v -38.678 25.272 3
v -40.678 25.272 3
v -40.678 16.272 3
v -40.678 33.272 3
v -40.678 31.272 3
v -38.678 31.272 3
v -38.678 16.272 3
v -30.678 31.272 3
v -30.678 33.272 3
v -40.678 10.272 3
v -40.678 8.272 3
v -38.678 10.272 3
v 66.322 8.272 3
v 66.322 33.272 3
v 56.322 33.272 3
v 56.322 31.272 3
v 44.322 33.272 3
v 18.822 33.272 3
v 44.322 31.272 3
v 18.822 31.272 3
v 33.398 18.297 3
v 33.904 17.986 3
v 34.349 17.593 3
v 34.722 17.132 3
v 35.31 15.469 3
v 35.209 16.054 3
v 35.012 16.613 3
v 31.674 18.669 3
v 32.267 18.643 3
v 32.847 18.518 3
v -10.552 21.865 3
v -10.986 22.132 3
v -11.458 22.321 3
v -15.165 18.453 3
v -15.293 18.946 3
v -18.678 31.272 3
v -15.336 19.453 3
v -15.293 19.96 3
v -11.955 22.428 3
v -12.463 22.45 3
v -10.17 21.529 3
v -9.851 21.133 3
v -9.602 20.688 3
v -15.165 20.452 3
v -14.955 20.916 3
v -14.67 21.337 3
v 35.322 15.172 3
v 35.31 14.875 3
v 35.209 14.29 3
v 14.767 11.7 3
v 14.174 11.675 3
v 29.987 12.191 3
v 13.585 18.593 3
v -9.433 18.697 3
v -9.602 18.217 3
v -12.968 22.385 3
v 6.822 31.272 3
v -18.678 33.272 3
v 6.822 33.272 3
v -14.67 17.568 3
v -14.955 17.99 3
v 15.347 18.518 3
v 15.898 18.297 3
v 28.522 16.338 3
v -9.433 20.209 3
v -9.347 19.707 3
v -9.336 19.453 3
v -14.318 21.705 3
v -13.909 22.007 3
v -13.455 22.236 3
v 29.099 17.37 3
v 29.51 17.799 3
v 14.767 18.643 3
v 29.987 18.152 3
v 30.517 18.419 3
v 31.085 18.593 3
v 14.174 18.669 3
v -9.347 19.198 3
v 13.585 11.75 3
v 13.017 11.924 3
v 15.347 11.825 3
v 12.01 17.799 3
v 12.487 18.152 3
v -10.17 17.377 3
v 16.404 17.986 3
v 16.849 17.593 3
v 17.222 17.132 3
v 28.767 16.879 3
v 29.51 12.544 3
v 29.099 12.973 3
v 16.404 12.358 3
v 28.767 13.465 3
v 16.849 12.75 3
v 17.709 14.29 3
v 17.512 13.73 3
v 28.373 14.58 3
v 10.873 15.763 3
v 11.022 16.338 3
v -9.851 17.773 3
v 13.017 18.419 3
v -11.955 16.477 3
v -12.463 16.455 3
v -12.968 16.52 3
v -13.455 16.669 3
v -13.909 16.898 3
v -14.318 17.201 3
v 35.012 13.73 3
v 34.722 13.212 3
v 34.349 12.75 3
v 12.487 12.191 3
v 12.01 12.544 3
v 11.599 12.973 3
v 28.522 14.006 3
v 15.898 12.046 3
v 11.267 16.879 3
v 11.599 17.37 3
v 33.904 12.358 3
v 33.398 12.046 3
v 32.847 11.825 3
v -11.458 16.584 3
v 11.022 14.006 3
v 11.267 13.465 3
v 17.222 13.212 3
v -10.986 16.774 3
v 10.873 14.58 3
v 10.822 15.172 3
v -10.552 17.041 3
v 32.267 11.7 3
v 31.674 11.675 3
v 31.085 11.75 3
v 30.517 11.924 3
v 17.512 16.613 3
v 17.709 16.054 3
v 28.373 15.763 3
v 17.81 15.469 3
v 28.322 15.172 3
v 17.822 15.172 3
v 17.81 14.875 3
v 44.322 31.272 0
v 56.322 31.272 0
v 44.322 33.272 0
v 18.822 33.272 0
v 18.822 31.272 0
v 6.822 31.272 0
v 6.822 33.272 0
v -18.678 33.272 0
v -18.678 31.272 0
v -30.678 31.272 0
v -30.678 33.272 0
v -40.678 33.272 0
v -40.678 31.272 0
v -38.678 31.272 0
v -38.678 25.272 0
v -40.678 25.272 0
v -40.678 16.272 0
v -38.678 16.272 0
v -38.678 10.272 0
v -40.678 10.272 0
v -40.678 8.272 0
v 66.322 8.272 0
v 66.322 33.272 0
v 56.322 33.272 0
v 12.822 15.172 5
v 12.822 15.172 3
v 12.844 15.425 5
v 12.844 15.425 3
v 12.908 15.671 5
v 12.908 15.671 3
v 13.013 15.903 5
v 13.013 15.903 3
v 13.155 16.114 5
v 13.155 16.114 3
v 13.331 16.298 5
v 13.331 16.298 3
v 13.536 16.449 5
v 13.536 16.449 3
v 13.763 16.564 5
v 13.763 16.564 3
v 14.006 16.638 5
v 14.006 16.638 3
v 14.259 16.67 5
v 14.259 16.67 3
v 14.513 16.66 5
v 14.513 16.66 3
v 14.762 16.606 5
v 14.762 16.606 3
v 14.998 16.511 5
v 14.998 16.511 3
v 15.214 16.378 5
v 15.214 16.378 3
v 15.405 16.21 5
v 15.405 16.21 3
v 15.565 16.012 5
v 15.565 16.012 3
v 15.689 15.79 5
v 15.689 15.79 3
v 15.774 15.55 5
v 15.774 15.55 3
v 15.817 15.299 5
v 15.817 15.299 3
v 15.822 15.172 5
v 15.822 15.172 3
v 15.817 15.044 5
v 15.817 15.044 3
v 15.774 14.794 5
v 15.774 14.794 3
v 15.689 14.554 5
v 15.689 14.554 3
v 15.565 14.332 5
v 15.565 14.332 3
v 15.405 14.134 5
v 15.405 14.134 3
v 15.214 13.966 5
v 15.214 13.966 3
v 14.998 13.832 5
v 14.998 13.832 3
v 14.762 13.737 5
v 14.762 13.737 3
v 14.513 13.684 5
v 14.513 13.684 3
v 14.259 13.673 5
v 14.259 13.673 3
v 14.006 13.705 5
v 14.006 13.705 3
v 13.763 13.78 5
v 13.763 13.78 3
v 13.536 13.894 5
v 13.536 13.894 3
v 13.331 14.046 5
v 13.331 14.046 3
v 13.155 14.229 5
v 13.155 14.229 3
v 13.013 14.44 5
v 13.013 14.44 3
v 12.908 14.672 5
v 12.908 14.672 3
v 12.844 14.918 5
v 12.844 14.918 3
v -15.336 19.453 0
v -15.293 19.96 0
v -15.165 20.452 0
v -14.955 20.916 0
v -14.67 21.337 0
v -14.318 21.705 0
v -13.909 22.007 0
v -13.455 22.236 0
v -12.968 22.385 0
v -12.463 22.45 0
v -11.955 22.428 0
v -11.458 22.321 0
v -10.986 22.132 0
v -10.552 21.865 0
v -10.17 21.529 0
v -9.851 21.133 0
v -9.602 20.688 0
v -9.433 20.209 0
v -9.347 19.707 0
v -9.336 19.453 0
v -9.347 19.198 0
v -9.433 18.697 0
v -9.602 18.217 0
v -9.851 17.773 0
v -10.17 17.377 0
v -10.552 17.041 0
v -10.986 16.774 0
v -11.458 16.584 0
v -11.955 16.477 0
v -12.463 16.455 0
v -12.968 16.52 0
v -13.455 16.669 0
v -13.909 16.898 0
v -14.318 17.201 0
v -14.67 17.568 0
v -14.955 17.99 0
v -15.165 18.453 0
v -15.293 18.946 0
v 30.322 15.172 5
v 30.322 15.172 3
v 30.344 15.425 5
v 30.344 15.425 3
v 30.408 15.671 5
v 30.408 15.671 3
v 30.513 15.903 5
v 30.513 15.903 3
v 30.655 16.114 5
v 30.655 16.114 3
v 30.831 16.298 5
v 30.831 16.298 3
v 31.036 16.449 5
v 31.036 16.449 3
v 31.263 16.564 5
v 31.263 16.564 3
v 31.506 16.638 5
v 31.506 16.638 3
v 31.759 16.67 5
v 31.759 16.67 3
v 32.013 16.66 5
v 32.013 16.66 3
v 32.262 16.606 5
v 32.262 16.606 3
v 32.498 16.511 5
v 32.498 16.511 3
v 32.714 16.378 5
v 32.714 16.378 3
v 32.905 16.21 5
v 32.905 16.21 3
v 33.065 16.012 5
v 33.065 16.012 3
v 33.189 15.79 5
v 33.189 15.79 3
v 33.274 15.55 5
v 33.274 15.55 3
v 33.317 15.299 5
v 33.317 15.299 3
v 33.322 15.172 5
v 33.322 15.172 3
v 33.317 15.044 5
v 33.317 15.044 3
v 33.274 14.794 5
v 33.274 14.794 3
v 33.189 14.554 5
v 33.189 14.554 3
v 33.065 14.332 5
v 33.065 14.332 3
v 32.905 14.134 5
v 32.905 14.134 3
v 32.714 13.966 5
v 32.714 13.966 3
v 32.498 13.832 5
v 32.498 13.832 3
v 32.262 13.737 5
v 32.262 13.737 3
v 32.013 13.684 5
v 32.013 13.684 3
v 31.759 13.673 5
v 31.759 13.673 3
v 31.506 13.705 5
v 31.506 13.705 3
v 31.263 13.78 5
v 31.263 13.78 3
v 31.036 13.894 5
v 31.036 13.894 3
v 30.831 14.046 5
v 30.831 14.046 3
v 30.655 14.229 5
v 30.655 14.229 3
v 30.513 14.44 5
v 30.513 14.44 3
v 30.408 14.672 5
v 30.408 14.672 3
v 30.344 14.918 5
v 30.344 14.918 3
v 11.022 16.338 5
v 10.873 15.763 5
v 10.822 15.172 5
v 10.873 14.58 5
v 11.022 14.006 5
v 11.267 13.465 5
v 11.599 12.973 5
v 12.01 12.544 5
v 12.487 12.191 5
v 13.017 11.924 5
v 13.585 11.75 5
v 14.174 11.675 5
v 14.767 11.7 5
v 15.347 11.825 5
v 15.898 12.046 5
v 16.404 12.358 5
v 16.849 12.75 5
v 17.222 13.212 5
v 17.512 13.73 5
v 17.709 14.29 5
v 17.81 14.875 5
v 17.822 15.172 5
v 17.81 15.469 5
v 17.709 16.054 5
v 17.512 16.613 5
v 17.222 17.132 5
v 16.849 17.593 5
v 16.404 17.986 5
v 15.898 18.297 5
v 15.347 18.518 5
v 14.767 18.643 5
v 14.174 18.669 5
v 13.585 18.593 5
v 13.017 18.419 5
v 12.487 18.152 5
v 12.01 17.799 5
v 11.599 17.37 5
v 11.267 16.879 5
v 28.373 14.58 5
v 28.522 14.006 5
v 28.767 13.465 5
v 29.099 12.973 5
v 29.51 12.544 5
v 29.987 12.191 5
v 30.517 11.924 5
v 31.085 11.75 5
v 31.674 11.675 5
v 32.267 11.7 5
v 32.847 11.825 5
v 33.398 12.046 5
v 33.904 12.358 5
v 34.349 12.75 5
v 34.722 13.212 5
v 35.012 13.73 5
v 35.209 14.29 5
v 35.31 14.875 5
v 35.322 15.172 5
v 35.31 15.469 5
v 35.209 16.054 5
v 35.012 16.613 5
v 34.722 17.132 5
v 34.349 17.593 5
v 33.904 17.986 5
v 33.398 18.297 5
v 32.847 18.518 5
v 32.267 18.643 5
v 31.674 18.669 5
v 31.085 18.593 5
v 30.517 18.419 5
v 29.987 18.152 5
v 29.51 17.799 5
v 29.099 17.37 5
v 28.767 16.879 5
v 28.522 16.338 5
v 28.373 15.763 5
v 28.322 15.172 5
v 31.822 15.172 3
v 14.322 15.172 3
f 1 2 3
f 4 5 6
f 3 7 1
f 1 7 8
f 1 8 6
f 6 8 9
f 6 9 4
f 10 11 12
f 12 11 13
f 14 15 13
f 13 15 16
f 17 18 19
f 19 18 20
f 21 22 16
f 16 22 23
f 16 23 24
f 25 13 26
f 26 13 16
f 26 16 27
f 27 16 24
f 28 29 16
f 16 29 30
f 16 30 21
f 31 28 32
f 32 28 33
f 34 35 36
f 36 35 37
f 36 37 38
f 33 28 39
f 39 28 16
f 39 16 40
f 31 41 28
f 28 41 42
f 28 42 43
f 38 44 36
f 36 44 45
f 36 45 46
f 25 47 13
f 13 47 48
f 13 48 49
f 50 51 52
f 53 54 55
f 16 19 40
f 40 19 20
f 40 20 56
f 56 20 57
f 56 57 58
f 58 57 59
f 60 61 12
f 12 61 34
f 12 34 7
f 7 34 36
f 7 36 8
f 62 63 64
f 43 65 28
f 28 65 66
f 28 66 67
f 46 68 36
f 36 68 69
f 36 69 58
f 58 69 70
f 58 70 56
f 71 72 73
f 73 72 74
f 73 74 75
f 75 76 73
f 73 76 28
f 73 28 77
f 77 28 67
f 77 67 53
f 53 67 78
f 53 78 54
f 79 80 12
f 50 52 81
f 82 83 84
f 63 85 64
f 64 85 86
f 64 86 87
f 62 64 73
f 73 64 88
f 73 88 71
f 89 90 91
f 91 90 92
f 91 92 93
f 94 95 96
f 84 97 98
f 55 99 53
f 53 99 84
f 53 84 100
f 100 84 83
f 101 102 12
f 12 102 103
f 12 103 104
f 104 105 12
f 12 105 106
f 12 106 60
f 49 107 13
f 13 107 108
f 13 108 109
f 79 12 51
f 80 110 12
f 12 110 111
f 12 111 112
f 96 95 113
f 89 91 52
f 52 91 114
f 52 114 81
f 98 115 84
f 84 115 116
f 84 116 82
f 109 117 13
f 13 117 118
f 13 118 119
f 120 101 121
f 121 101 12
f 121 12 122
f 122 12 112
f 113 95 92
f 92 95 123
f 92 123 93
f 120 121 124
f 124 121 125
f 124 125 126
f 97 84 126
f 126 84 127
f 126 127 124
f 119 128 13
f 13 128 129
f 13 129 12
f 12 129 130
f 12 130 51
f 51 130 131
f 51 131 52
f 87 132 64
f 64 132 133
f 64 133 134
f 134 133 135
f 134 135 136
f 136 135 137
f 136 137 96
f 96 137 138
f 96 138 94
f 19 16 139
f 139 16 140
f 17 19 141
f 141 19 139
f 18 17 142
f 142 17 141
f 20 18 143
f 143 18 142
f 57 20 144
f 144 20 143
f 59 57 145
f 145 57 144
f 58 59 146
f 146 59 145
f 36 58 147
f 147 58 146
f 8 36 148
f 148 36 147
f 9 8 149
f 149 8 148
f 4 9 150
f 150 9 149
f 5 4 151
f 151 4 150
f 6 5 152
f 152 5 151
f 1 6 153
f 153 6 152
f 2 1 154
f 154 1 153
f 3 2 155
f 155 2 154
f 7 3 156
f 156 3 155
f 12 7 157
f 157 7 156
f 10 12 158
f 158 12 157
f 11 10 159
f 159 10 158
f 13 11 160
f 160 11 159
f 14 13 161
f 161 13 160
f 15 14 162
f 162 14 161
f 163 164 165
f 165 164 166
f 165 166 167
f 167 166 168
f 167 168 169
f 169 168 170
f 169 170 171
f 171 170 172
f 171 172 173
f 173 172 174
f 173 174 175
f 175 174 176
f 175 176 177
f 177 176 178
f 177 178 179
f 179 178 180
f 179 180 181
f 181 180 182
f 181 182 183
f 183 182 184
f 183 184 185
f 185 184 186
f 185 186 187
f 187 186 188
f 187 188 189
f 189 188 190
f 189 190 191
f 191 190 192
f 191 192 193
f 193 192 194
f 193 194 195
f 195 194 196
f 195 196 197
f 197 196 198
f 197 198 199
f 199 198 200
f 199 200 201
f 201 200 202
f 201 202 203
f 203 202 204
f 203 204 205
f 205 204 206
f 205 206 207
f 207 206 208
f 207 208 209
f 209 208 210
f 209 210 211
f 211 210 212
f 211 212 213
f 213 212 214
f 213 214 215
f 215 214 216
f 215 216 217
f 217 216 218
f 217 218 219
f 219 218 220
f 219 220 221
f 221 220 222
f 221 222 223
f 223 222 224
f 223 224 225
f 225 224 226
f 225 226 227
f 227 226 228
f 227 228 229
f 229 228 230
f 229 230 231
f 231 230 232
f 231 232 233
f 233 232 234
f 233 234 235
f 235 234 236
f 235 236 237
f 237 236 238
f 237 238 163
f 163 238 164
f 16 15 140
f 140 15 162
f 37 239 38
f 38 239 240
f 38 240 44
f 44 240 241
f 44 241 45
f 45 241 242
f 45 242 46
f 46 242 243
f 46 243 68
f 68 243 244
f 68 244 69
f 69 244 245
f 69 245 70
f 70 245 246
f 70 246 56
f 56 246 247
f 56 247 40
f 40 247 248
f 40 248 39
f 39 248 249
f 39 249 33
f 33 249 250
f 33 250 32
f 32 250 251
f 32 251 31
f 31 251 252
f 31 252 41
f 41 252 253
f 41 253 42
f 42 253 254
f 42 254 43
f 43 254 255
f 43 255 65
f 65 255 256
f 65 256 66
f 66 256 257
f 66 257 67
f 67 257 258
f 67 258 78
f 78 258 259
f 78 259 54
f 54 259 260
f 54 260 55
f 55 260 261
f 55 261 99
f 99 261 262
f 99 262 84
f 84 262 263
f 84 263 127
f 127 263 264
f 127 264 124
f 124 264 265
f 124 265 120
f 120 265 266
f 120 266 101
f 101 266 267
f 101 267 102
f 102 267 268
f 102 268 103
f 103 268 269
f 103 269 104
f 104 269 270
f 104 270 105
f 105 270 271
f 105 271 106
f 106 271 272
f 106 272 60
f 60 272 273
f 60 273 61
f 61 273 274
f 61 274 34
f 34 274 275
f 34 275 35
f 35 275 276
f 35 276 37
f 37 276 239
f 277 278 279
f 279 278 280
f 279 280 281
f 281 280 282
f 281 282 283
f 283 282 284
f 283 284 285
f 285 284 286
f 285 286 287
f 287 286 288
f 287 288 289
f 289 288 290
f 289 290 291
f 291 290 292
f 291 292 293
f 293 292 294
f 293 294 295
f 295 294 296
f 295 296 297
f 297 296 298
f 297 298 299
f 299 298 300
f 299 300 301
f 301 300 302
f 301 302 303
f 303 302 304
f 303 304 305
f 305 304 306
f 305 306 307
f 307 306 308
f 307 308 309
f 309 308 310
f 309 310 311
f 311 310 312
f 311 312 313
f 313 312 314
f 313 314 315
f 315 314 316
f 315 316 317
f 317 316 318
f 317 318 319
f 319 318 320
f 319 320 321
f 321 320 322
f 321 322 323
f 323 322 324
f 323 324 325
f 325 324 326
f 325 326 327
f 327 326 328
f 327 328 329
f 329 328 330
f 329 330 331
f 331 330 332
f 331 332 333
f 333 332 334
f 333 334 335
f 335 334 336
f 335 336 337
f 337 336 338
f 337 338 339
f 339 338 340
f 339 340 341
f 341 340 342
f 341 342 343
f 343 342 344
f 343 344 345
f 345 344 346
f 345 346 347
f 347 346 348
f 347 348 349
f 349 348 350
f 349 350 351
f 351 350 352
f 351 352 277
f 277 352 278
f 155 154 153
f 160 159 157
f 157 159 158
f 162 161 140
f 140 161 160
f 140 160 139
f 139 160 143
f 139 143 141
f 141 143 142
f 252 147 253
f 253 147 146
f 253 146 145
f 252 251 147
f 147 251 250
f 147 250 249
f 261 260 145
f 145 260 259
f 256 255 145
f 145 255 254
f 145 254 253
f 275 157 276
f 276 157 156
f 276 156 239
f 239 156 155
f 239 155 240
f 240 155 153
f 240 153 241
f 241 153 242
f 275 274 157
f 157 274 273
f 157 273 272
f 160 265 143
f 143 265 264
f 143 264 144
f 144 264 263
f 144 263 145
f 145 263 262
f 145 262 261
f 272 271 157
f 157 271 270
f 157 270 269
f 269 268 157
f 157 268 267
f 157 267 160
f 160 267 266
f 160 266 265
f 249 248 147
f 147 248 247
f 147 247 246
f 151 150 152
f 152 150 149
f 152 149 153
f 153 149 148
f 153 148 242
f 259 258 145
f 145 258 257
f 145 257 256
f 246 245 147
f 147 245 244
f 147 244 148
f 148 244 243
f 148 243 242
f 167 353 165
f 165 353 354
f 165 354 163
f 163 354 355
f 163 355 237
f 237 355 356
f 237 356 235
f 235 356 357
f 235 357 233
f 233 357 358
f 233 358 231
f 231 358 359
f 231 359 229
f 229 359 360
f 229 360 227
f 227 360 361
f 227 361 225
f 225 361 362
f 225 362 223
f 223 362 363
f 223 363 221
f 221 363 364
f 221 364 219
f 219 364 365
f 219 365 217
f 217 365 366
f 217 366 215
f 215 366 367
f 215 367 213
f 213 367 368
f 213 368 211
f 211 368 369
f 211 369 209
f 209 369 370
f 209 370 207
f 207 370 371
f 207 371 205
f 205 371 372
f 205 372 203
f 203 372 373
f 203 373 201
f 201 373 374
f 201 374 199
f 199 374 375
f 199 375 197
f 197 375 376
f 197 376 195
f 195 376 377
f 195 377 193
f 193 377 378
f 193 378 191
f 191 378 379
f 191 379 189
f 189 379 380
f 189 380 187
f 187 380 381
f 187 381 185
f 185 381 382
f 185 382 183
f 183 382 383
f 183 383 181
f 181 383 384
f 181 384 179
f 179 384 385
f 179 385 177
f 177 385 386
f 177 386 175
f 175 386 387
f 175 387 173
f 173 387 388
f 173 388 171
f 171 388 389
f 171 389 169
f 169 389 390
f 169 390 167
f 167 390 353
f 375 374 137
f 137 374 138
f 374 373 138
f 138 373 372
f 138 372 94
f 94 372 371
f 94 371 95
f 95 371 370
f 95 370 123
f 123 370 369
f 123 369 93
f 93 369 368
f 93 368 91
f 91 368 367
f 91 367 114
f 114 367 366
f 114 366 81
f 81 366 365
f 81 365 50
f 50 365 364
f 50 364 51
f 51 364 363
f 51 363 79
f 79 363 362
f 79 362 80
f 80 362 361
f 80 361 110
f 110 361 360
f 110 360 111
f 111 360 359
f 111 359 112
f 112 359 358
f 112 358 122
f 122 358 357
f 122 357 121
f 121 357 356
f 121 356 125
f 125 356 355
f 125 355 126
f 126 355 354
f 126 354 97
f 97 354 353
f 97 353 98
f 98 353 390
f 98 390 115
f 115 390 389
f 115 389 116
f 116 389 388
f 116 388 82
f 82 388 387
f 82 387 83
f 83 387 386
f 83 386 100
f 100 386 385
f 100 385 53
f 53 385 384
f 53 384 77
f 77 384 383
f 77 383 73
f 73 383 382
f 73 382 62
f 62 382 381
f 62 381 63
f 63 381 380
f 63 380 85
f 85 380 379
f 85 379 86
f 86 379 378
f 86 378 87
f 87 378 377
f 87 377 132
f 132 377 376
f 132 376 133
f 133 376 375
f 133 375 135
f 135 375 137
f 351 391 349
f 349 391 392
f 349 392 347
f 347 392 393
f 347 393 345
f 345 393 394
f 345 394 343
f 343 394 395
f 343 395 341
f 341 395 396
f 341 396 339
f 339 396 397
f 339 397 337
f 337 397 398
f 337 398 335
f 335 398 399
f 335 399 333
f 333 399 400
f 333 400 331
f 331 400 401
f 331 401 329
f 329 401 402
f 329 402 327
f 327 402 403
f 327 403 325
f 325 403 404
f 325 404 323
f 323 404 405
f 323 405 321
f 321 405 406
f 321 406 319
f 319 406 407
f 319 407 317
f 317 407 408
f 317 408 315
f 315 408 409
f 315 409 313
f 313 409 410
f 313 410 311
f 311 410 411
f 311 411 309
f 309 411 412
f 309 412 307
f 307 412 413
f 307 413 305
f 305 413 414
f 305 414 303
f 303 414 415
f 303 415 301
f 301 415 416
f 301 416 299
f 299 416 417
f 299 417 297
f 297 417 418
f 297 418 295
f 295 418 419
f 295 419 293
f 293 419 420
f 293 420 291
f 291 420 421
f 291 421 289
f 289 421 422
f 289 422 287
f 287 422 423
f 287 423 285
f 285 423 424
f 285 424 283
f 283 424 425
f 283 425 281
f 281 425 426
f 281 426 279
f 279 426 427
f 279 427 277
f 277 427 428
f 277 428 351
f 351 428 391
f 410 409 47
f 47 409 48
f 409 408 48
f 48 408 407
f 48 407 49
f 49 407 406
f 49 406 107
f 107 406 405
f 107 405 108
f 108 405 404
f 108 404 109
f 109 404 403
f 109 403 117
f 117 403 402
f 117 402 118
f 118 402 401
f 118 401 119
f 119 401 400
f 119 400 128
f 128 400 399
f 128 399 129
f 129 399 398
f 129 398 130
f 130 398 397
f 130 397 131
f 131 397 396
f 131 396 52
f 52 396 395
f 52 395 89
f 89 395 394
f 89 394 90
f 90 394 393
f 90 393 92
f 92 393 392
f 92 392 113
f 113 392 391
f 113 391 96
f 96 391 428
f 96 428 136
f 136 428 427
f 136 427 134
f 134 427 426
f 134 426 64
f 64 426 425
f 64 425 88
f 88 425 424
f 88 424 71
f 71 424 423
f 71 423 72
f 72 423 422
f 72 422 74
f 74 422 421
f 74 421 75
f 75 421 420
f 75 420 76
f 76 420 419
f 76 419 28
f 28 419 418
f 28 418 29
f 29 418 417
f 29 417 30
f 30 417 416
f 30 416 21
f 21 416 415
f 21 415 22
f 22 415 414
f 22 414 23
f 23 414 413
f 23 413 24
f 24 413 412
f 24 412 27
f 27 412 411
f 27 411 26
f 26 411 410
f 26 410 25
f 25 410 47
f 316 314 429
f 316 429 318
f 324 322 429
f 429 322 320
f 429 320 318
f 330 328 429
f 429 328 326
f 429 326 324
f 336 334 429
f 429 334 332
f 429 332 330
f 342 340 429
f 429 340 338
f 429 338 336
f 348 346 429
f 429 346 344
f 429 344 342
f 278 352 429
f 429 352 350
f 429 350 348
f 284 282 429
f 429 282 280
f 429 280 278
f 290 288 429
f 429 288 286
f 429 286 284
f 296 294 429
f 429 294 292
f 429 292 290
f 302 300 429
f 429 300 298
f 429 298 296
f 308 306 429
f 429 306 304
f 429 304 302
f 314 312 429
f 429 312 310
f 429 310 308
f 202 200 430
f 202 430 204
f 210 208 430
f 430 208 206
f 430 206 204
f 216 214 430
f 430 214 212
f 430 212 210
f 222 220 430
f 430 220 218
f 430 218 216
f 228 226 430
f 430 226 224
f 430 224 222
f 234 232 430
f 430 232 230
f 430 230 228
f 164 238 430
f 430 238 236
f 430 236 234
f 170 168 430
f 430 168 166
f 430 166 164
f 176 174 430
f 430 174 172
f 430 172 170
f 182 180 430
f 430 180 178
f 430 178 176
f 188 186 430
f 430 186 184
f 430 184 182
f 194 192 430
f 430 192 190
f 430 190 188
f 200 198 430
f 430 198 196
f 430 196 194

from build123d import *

# Parameters (mm, degrees)
ESBO_O1_R                = 3
ESBO_O1_R_2              = 1.5
RESSALTO_EXTRUS_O1_DEPTH = 3
ESBO_O1_19_R             = 3.5
ESBO_O1_19_R_2           = 1.5
RESSALTO_EXTRUS_O2_DEPTH = 5
ESBO_O1_20_R             = 1.5
RESSALTO_EXTRUS_O3_DEPTH = 3


with BuildPart() as part:
    # Esboço1 → Ressalto-extrusão1 (new body)
    with BuildSketch(Plane.XY):
        Polygon((-30.67768595, 33.271694215), (-40.67768595, 33.271694215), (-40.67768595, 31.271694215), (-38.67768595, 31.271694215), (-38.67768595, 25.271694215), (-40.67768595, 25.271694215), (-40.67768595, 16.271694215), (-38.67768595, 16.271694215), (-38.67768595, 10.271694215), (-40.67768595, 10.271694215), (-40.67768595, 8.271694215), (66.32231405, 8.271694215), (66.32231405, 33.271694215), (56.32231405, 33.271694215), (56.32231405, 31.271694215), (44.32231405, 31.271694215), (44.32231405, 33.271694215), (18.82231405, 33.271694215), (18.82231405, 31.271694215), (6.82231405, 31.271694215), (6.82231405, 33.271694215), (-18.67768595, 33.271694215), (-18.67768595, 31.271694215), (-30.67768595, 31.271694215), align=None)
        with Locations((-12.336122998, 19.452784517)):
            Circle(ESBO_O1_R, mode=Mode.SUBTRACT)
        with Locations((14.32231405, 15.171694215)):
            Circle(ESBO_O1_R_2, mode=Mode.SUBTRACT)
        with Locations((31.82231405, 15.171694215)):
            Circle(ESBO_O1_R_2, mode=Mode.SUBTRACT)
    extrude(amount=RESSALTO_EXTRUS_O1_DEPTH)

    # Esboço1<19> → Ressalto-extrusão2 (add)
    with BuildSketch(Plane.XY):
        with Locations((14.32231405, 15.171694215)):
            Circle(ESBO_O1_19_R)
        with Locations((14.32231405, 15.171694215)):
            Circle(ESBO_O1_19_R_2, mode=Mode.SUBTRACT)
        with Locations((31.82231405, 15.171694215)):
            Circle(ESBO_O1_19_R)
        with Locations((31.82231405, 15.171694215)):
            Circle(ESBO_O1_19_R_2, mode=Mode.SUBTRACT)
    extrude(amount=RESSALTO_EXTRUS_O2_DEPTH)

    # Esboço1<20> → Ressalto-extrusão3 (add)
    with BuildSketch(Plane.XY):
        with Locations((14.32231405, 15.171694215)):
            Circle(ESBO_O1_20_R)
        with Locations((31.82231405, 15.171694215)):
            Circle(ESBO_O1_20_R)
    extrude(amount=RESSALTO_EXTRUS_O3_DEPTH)


solid = part.part
